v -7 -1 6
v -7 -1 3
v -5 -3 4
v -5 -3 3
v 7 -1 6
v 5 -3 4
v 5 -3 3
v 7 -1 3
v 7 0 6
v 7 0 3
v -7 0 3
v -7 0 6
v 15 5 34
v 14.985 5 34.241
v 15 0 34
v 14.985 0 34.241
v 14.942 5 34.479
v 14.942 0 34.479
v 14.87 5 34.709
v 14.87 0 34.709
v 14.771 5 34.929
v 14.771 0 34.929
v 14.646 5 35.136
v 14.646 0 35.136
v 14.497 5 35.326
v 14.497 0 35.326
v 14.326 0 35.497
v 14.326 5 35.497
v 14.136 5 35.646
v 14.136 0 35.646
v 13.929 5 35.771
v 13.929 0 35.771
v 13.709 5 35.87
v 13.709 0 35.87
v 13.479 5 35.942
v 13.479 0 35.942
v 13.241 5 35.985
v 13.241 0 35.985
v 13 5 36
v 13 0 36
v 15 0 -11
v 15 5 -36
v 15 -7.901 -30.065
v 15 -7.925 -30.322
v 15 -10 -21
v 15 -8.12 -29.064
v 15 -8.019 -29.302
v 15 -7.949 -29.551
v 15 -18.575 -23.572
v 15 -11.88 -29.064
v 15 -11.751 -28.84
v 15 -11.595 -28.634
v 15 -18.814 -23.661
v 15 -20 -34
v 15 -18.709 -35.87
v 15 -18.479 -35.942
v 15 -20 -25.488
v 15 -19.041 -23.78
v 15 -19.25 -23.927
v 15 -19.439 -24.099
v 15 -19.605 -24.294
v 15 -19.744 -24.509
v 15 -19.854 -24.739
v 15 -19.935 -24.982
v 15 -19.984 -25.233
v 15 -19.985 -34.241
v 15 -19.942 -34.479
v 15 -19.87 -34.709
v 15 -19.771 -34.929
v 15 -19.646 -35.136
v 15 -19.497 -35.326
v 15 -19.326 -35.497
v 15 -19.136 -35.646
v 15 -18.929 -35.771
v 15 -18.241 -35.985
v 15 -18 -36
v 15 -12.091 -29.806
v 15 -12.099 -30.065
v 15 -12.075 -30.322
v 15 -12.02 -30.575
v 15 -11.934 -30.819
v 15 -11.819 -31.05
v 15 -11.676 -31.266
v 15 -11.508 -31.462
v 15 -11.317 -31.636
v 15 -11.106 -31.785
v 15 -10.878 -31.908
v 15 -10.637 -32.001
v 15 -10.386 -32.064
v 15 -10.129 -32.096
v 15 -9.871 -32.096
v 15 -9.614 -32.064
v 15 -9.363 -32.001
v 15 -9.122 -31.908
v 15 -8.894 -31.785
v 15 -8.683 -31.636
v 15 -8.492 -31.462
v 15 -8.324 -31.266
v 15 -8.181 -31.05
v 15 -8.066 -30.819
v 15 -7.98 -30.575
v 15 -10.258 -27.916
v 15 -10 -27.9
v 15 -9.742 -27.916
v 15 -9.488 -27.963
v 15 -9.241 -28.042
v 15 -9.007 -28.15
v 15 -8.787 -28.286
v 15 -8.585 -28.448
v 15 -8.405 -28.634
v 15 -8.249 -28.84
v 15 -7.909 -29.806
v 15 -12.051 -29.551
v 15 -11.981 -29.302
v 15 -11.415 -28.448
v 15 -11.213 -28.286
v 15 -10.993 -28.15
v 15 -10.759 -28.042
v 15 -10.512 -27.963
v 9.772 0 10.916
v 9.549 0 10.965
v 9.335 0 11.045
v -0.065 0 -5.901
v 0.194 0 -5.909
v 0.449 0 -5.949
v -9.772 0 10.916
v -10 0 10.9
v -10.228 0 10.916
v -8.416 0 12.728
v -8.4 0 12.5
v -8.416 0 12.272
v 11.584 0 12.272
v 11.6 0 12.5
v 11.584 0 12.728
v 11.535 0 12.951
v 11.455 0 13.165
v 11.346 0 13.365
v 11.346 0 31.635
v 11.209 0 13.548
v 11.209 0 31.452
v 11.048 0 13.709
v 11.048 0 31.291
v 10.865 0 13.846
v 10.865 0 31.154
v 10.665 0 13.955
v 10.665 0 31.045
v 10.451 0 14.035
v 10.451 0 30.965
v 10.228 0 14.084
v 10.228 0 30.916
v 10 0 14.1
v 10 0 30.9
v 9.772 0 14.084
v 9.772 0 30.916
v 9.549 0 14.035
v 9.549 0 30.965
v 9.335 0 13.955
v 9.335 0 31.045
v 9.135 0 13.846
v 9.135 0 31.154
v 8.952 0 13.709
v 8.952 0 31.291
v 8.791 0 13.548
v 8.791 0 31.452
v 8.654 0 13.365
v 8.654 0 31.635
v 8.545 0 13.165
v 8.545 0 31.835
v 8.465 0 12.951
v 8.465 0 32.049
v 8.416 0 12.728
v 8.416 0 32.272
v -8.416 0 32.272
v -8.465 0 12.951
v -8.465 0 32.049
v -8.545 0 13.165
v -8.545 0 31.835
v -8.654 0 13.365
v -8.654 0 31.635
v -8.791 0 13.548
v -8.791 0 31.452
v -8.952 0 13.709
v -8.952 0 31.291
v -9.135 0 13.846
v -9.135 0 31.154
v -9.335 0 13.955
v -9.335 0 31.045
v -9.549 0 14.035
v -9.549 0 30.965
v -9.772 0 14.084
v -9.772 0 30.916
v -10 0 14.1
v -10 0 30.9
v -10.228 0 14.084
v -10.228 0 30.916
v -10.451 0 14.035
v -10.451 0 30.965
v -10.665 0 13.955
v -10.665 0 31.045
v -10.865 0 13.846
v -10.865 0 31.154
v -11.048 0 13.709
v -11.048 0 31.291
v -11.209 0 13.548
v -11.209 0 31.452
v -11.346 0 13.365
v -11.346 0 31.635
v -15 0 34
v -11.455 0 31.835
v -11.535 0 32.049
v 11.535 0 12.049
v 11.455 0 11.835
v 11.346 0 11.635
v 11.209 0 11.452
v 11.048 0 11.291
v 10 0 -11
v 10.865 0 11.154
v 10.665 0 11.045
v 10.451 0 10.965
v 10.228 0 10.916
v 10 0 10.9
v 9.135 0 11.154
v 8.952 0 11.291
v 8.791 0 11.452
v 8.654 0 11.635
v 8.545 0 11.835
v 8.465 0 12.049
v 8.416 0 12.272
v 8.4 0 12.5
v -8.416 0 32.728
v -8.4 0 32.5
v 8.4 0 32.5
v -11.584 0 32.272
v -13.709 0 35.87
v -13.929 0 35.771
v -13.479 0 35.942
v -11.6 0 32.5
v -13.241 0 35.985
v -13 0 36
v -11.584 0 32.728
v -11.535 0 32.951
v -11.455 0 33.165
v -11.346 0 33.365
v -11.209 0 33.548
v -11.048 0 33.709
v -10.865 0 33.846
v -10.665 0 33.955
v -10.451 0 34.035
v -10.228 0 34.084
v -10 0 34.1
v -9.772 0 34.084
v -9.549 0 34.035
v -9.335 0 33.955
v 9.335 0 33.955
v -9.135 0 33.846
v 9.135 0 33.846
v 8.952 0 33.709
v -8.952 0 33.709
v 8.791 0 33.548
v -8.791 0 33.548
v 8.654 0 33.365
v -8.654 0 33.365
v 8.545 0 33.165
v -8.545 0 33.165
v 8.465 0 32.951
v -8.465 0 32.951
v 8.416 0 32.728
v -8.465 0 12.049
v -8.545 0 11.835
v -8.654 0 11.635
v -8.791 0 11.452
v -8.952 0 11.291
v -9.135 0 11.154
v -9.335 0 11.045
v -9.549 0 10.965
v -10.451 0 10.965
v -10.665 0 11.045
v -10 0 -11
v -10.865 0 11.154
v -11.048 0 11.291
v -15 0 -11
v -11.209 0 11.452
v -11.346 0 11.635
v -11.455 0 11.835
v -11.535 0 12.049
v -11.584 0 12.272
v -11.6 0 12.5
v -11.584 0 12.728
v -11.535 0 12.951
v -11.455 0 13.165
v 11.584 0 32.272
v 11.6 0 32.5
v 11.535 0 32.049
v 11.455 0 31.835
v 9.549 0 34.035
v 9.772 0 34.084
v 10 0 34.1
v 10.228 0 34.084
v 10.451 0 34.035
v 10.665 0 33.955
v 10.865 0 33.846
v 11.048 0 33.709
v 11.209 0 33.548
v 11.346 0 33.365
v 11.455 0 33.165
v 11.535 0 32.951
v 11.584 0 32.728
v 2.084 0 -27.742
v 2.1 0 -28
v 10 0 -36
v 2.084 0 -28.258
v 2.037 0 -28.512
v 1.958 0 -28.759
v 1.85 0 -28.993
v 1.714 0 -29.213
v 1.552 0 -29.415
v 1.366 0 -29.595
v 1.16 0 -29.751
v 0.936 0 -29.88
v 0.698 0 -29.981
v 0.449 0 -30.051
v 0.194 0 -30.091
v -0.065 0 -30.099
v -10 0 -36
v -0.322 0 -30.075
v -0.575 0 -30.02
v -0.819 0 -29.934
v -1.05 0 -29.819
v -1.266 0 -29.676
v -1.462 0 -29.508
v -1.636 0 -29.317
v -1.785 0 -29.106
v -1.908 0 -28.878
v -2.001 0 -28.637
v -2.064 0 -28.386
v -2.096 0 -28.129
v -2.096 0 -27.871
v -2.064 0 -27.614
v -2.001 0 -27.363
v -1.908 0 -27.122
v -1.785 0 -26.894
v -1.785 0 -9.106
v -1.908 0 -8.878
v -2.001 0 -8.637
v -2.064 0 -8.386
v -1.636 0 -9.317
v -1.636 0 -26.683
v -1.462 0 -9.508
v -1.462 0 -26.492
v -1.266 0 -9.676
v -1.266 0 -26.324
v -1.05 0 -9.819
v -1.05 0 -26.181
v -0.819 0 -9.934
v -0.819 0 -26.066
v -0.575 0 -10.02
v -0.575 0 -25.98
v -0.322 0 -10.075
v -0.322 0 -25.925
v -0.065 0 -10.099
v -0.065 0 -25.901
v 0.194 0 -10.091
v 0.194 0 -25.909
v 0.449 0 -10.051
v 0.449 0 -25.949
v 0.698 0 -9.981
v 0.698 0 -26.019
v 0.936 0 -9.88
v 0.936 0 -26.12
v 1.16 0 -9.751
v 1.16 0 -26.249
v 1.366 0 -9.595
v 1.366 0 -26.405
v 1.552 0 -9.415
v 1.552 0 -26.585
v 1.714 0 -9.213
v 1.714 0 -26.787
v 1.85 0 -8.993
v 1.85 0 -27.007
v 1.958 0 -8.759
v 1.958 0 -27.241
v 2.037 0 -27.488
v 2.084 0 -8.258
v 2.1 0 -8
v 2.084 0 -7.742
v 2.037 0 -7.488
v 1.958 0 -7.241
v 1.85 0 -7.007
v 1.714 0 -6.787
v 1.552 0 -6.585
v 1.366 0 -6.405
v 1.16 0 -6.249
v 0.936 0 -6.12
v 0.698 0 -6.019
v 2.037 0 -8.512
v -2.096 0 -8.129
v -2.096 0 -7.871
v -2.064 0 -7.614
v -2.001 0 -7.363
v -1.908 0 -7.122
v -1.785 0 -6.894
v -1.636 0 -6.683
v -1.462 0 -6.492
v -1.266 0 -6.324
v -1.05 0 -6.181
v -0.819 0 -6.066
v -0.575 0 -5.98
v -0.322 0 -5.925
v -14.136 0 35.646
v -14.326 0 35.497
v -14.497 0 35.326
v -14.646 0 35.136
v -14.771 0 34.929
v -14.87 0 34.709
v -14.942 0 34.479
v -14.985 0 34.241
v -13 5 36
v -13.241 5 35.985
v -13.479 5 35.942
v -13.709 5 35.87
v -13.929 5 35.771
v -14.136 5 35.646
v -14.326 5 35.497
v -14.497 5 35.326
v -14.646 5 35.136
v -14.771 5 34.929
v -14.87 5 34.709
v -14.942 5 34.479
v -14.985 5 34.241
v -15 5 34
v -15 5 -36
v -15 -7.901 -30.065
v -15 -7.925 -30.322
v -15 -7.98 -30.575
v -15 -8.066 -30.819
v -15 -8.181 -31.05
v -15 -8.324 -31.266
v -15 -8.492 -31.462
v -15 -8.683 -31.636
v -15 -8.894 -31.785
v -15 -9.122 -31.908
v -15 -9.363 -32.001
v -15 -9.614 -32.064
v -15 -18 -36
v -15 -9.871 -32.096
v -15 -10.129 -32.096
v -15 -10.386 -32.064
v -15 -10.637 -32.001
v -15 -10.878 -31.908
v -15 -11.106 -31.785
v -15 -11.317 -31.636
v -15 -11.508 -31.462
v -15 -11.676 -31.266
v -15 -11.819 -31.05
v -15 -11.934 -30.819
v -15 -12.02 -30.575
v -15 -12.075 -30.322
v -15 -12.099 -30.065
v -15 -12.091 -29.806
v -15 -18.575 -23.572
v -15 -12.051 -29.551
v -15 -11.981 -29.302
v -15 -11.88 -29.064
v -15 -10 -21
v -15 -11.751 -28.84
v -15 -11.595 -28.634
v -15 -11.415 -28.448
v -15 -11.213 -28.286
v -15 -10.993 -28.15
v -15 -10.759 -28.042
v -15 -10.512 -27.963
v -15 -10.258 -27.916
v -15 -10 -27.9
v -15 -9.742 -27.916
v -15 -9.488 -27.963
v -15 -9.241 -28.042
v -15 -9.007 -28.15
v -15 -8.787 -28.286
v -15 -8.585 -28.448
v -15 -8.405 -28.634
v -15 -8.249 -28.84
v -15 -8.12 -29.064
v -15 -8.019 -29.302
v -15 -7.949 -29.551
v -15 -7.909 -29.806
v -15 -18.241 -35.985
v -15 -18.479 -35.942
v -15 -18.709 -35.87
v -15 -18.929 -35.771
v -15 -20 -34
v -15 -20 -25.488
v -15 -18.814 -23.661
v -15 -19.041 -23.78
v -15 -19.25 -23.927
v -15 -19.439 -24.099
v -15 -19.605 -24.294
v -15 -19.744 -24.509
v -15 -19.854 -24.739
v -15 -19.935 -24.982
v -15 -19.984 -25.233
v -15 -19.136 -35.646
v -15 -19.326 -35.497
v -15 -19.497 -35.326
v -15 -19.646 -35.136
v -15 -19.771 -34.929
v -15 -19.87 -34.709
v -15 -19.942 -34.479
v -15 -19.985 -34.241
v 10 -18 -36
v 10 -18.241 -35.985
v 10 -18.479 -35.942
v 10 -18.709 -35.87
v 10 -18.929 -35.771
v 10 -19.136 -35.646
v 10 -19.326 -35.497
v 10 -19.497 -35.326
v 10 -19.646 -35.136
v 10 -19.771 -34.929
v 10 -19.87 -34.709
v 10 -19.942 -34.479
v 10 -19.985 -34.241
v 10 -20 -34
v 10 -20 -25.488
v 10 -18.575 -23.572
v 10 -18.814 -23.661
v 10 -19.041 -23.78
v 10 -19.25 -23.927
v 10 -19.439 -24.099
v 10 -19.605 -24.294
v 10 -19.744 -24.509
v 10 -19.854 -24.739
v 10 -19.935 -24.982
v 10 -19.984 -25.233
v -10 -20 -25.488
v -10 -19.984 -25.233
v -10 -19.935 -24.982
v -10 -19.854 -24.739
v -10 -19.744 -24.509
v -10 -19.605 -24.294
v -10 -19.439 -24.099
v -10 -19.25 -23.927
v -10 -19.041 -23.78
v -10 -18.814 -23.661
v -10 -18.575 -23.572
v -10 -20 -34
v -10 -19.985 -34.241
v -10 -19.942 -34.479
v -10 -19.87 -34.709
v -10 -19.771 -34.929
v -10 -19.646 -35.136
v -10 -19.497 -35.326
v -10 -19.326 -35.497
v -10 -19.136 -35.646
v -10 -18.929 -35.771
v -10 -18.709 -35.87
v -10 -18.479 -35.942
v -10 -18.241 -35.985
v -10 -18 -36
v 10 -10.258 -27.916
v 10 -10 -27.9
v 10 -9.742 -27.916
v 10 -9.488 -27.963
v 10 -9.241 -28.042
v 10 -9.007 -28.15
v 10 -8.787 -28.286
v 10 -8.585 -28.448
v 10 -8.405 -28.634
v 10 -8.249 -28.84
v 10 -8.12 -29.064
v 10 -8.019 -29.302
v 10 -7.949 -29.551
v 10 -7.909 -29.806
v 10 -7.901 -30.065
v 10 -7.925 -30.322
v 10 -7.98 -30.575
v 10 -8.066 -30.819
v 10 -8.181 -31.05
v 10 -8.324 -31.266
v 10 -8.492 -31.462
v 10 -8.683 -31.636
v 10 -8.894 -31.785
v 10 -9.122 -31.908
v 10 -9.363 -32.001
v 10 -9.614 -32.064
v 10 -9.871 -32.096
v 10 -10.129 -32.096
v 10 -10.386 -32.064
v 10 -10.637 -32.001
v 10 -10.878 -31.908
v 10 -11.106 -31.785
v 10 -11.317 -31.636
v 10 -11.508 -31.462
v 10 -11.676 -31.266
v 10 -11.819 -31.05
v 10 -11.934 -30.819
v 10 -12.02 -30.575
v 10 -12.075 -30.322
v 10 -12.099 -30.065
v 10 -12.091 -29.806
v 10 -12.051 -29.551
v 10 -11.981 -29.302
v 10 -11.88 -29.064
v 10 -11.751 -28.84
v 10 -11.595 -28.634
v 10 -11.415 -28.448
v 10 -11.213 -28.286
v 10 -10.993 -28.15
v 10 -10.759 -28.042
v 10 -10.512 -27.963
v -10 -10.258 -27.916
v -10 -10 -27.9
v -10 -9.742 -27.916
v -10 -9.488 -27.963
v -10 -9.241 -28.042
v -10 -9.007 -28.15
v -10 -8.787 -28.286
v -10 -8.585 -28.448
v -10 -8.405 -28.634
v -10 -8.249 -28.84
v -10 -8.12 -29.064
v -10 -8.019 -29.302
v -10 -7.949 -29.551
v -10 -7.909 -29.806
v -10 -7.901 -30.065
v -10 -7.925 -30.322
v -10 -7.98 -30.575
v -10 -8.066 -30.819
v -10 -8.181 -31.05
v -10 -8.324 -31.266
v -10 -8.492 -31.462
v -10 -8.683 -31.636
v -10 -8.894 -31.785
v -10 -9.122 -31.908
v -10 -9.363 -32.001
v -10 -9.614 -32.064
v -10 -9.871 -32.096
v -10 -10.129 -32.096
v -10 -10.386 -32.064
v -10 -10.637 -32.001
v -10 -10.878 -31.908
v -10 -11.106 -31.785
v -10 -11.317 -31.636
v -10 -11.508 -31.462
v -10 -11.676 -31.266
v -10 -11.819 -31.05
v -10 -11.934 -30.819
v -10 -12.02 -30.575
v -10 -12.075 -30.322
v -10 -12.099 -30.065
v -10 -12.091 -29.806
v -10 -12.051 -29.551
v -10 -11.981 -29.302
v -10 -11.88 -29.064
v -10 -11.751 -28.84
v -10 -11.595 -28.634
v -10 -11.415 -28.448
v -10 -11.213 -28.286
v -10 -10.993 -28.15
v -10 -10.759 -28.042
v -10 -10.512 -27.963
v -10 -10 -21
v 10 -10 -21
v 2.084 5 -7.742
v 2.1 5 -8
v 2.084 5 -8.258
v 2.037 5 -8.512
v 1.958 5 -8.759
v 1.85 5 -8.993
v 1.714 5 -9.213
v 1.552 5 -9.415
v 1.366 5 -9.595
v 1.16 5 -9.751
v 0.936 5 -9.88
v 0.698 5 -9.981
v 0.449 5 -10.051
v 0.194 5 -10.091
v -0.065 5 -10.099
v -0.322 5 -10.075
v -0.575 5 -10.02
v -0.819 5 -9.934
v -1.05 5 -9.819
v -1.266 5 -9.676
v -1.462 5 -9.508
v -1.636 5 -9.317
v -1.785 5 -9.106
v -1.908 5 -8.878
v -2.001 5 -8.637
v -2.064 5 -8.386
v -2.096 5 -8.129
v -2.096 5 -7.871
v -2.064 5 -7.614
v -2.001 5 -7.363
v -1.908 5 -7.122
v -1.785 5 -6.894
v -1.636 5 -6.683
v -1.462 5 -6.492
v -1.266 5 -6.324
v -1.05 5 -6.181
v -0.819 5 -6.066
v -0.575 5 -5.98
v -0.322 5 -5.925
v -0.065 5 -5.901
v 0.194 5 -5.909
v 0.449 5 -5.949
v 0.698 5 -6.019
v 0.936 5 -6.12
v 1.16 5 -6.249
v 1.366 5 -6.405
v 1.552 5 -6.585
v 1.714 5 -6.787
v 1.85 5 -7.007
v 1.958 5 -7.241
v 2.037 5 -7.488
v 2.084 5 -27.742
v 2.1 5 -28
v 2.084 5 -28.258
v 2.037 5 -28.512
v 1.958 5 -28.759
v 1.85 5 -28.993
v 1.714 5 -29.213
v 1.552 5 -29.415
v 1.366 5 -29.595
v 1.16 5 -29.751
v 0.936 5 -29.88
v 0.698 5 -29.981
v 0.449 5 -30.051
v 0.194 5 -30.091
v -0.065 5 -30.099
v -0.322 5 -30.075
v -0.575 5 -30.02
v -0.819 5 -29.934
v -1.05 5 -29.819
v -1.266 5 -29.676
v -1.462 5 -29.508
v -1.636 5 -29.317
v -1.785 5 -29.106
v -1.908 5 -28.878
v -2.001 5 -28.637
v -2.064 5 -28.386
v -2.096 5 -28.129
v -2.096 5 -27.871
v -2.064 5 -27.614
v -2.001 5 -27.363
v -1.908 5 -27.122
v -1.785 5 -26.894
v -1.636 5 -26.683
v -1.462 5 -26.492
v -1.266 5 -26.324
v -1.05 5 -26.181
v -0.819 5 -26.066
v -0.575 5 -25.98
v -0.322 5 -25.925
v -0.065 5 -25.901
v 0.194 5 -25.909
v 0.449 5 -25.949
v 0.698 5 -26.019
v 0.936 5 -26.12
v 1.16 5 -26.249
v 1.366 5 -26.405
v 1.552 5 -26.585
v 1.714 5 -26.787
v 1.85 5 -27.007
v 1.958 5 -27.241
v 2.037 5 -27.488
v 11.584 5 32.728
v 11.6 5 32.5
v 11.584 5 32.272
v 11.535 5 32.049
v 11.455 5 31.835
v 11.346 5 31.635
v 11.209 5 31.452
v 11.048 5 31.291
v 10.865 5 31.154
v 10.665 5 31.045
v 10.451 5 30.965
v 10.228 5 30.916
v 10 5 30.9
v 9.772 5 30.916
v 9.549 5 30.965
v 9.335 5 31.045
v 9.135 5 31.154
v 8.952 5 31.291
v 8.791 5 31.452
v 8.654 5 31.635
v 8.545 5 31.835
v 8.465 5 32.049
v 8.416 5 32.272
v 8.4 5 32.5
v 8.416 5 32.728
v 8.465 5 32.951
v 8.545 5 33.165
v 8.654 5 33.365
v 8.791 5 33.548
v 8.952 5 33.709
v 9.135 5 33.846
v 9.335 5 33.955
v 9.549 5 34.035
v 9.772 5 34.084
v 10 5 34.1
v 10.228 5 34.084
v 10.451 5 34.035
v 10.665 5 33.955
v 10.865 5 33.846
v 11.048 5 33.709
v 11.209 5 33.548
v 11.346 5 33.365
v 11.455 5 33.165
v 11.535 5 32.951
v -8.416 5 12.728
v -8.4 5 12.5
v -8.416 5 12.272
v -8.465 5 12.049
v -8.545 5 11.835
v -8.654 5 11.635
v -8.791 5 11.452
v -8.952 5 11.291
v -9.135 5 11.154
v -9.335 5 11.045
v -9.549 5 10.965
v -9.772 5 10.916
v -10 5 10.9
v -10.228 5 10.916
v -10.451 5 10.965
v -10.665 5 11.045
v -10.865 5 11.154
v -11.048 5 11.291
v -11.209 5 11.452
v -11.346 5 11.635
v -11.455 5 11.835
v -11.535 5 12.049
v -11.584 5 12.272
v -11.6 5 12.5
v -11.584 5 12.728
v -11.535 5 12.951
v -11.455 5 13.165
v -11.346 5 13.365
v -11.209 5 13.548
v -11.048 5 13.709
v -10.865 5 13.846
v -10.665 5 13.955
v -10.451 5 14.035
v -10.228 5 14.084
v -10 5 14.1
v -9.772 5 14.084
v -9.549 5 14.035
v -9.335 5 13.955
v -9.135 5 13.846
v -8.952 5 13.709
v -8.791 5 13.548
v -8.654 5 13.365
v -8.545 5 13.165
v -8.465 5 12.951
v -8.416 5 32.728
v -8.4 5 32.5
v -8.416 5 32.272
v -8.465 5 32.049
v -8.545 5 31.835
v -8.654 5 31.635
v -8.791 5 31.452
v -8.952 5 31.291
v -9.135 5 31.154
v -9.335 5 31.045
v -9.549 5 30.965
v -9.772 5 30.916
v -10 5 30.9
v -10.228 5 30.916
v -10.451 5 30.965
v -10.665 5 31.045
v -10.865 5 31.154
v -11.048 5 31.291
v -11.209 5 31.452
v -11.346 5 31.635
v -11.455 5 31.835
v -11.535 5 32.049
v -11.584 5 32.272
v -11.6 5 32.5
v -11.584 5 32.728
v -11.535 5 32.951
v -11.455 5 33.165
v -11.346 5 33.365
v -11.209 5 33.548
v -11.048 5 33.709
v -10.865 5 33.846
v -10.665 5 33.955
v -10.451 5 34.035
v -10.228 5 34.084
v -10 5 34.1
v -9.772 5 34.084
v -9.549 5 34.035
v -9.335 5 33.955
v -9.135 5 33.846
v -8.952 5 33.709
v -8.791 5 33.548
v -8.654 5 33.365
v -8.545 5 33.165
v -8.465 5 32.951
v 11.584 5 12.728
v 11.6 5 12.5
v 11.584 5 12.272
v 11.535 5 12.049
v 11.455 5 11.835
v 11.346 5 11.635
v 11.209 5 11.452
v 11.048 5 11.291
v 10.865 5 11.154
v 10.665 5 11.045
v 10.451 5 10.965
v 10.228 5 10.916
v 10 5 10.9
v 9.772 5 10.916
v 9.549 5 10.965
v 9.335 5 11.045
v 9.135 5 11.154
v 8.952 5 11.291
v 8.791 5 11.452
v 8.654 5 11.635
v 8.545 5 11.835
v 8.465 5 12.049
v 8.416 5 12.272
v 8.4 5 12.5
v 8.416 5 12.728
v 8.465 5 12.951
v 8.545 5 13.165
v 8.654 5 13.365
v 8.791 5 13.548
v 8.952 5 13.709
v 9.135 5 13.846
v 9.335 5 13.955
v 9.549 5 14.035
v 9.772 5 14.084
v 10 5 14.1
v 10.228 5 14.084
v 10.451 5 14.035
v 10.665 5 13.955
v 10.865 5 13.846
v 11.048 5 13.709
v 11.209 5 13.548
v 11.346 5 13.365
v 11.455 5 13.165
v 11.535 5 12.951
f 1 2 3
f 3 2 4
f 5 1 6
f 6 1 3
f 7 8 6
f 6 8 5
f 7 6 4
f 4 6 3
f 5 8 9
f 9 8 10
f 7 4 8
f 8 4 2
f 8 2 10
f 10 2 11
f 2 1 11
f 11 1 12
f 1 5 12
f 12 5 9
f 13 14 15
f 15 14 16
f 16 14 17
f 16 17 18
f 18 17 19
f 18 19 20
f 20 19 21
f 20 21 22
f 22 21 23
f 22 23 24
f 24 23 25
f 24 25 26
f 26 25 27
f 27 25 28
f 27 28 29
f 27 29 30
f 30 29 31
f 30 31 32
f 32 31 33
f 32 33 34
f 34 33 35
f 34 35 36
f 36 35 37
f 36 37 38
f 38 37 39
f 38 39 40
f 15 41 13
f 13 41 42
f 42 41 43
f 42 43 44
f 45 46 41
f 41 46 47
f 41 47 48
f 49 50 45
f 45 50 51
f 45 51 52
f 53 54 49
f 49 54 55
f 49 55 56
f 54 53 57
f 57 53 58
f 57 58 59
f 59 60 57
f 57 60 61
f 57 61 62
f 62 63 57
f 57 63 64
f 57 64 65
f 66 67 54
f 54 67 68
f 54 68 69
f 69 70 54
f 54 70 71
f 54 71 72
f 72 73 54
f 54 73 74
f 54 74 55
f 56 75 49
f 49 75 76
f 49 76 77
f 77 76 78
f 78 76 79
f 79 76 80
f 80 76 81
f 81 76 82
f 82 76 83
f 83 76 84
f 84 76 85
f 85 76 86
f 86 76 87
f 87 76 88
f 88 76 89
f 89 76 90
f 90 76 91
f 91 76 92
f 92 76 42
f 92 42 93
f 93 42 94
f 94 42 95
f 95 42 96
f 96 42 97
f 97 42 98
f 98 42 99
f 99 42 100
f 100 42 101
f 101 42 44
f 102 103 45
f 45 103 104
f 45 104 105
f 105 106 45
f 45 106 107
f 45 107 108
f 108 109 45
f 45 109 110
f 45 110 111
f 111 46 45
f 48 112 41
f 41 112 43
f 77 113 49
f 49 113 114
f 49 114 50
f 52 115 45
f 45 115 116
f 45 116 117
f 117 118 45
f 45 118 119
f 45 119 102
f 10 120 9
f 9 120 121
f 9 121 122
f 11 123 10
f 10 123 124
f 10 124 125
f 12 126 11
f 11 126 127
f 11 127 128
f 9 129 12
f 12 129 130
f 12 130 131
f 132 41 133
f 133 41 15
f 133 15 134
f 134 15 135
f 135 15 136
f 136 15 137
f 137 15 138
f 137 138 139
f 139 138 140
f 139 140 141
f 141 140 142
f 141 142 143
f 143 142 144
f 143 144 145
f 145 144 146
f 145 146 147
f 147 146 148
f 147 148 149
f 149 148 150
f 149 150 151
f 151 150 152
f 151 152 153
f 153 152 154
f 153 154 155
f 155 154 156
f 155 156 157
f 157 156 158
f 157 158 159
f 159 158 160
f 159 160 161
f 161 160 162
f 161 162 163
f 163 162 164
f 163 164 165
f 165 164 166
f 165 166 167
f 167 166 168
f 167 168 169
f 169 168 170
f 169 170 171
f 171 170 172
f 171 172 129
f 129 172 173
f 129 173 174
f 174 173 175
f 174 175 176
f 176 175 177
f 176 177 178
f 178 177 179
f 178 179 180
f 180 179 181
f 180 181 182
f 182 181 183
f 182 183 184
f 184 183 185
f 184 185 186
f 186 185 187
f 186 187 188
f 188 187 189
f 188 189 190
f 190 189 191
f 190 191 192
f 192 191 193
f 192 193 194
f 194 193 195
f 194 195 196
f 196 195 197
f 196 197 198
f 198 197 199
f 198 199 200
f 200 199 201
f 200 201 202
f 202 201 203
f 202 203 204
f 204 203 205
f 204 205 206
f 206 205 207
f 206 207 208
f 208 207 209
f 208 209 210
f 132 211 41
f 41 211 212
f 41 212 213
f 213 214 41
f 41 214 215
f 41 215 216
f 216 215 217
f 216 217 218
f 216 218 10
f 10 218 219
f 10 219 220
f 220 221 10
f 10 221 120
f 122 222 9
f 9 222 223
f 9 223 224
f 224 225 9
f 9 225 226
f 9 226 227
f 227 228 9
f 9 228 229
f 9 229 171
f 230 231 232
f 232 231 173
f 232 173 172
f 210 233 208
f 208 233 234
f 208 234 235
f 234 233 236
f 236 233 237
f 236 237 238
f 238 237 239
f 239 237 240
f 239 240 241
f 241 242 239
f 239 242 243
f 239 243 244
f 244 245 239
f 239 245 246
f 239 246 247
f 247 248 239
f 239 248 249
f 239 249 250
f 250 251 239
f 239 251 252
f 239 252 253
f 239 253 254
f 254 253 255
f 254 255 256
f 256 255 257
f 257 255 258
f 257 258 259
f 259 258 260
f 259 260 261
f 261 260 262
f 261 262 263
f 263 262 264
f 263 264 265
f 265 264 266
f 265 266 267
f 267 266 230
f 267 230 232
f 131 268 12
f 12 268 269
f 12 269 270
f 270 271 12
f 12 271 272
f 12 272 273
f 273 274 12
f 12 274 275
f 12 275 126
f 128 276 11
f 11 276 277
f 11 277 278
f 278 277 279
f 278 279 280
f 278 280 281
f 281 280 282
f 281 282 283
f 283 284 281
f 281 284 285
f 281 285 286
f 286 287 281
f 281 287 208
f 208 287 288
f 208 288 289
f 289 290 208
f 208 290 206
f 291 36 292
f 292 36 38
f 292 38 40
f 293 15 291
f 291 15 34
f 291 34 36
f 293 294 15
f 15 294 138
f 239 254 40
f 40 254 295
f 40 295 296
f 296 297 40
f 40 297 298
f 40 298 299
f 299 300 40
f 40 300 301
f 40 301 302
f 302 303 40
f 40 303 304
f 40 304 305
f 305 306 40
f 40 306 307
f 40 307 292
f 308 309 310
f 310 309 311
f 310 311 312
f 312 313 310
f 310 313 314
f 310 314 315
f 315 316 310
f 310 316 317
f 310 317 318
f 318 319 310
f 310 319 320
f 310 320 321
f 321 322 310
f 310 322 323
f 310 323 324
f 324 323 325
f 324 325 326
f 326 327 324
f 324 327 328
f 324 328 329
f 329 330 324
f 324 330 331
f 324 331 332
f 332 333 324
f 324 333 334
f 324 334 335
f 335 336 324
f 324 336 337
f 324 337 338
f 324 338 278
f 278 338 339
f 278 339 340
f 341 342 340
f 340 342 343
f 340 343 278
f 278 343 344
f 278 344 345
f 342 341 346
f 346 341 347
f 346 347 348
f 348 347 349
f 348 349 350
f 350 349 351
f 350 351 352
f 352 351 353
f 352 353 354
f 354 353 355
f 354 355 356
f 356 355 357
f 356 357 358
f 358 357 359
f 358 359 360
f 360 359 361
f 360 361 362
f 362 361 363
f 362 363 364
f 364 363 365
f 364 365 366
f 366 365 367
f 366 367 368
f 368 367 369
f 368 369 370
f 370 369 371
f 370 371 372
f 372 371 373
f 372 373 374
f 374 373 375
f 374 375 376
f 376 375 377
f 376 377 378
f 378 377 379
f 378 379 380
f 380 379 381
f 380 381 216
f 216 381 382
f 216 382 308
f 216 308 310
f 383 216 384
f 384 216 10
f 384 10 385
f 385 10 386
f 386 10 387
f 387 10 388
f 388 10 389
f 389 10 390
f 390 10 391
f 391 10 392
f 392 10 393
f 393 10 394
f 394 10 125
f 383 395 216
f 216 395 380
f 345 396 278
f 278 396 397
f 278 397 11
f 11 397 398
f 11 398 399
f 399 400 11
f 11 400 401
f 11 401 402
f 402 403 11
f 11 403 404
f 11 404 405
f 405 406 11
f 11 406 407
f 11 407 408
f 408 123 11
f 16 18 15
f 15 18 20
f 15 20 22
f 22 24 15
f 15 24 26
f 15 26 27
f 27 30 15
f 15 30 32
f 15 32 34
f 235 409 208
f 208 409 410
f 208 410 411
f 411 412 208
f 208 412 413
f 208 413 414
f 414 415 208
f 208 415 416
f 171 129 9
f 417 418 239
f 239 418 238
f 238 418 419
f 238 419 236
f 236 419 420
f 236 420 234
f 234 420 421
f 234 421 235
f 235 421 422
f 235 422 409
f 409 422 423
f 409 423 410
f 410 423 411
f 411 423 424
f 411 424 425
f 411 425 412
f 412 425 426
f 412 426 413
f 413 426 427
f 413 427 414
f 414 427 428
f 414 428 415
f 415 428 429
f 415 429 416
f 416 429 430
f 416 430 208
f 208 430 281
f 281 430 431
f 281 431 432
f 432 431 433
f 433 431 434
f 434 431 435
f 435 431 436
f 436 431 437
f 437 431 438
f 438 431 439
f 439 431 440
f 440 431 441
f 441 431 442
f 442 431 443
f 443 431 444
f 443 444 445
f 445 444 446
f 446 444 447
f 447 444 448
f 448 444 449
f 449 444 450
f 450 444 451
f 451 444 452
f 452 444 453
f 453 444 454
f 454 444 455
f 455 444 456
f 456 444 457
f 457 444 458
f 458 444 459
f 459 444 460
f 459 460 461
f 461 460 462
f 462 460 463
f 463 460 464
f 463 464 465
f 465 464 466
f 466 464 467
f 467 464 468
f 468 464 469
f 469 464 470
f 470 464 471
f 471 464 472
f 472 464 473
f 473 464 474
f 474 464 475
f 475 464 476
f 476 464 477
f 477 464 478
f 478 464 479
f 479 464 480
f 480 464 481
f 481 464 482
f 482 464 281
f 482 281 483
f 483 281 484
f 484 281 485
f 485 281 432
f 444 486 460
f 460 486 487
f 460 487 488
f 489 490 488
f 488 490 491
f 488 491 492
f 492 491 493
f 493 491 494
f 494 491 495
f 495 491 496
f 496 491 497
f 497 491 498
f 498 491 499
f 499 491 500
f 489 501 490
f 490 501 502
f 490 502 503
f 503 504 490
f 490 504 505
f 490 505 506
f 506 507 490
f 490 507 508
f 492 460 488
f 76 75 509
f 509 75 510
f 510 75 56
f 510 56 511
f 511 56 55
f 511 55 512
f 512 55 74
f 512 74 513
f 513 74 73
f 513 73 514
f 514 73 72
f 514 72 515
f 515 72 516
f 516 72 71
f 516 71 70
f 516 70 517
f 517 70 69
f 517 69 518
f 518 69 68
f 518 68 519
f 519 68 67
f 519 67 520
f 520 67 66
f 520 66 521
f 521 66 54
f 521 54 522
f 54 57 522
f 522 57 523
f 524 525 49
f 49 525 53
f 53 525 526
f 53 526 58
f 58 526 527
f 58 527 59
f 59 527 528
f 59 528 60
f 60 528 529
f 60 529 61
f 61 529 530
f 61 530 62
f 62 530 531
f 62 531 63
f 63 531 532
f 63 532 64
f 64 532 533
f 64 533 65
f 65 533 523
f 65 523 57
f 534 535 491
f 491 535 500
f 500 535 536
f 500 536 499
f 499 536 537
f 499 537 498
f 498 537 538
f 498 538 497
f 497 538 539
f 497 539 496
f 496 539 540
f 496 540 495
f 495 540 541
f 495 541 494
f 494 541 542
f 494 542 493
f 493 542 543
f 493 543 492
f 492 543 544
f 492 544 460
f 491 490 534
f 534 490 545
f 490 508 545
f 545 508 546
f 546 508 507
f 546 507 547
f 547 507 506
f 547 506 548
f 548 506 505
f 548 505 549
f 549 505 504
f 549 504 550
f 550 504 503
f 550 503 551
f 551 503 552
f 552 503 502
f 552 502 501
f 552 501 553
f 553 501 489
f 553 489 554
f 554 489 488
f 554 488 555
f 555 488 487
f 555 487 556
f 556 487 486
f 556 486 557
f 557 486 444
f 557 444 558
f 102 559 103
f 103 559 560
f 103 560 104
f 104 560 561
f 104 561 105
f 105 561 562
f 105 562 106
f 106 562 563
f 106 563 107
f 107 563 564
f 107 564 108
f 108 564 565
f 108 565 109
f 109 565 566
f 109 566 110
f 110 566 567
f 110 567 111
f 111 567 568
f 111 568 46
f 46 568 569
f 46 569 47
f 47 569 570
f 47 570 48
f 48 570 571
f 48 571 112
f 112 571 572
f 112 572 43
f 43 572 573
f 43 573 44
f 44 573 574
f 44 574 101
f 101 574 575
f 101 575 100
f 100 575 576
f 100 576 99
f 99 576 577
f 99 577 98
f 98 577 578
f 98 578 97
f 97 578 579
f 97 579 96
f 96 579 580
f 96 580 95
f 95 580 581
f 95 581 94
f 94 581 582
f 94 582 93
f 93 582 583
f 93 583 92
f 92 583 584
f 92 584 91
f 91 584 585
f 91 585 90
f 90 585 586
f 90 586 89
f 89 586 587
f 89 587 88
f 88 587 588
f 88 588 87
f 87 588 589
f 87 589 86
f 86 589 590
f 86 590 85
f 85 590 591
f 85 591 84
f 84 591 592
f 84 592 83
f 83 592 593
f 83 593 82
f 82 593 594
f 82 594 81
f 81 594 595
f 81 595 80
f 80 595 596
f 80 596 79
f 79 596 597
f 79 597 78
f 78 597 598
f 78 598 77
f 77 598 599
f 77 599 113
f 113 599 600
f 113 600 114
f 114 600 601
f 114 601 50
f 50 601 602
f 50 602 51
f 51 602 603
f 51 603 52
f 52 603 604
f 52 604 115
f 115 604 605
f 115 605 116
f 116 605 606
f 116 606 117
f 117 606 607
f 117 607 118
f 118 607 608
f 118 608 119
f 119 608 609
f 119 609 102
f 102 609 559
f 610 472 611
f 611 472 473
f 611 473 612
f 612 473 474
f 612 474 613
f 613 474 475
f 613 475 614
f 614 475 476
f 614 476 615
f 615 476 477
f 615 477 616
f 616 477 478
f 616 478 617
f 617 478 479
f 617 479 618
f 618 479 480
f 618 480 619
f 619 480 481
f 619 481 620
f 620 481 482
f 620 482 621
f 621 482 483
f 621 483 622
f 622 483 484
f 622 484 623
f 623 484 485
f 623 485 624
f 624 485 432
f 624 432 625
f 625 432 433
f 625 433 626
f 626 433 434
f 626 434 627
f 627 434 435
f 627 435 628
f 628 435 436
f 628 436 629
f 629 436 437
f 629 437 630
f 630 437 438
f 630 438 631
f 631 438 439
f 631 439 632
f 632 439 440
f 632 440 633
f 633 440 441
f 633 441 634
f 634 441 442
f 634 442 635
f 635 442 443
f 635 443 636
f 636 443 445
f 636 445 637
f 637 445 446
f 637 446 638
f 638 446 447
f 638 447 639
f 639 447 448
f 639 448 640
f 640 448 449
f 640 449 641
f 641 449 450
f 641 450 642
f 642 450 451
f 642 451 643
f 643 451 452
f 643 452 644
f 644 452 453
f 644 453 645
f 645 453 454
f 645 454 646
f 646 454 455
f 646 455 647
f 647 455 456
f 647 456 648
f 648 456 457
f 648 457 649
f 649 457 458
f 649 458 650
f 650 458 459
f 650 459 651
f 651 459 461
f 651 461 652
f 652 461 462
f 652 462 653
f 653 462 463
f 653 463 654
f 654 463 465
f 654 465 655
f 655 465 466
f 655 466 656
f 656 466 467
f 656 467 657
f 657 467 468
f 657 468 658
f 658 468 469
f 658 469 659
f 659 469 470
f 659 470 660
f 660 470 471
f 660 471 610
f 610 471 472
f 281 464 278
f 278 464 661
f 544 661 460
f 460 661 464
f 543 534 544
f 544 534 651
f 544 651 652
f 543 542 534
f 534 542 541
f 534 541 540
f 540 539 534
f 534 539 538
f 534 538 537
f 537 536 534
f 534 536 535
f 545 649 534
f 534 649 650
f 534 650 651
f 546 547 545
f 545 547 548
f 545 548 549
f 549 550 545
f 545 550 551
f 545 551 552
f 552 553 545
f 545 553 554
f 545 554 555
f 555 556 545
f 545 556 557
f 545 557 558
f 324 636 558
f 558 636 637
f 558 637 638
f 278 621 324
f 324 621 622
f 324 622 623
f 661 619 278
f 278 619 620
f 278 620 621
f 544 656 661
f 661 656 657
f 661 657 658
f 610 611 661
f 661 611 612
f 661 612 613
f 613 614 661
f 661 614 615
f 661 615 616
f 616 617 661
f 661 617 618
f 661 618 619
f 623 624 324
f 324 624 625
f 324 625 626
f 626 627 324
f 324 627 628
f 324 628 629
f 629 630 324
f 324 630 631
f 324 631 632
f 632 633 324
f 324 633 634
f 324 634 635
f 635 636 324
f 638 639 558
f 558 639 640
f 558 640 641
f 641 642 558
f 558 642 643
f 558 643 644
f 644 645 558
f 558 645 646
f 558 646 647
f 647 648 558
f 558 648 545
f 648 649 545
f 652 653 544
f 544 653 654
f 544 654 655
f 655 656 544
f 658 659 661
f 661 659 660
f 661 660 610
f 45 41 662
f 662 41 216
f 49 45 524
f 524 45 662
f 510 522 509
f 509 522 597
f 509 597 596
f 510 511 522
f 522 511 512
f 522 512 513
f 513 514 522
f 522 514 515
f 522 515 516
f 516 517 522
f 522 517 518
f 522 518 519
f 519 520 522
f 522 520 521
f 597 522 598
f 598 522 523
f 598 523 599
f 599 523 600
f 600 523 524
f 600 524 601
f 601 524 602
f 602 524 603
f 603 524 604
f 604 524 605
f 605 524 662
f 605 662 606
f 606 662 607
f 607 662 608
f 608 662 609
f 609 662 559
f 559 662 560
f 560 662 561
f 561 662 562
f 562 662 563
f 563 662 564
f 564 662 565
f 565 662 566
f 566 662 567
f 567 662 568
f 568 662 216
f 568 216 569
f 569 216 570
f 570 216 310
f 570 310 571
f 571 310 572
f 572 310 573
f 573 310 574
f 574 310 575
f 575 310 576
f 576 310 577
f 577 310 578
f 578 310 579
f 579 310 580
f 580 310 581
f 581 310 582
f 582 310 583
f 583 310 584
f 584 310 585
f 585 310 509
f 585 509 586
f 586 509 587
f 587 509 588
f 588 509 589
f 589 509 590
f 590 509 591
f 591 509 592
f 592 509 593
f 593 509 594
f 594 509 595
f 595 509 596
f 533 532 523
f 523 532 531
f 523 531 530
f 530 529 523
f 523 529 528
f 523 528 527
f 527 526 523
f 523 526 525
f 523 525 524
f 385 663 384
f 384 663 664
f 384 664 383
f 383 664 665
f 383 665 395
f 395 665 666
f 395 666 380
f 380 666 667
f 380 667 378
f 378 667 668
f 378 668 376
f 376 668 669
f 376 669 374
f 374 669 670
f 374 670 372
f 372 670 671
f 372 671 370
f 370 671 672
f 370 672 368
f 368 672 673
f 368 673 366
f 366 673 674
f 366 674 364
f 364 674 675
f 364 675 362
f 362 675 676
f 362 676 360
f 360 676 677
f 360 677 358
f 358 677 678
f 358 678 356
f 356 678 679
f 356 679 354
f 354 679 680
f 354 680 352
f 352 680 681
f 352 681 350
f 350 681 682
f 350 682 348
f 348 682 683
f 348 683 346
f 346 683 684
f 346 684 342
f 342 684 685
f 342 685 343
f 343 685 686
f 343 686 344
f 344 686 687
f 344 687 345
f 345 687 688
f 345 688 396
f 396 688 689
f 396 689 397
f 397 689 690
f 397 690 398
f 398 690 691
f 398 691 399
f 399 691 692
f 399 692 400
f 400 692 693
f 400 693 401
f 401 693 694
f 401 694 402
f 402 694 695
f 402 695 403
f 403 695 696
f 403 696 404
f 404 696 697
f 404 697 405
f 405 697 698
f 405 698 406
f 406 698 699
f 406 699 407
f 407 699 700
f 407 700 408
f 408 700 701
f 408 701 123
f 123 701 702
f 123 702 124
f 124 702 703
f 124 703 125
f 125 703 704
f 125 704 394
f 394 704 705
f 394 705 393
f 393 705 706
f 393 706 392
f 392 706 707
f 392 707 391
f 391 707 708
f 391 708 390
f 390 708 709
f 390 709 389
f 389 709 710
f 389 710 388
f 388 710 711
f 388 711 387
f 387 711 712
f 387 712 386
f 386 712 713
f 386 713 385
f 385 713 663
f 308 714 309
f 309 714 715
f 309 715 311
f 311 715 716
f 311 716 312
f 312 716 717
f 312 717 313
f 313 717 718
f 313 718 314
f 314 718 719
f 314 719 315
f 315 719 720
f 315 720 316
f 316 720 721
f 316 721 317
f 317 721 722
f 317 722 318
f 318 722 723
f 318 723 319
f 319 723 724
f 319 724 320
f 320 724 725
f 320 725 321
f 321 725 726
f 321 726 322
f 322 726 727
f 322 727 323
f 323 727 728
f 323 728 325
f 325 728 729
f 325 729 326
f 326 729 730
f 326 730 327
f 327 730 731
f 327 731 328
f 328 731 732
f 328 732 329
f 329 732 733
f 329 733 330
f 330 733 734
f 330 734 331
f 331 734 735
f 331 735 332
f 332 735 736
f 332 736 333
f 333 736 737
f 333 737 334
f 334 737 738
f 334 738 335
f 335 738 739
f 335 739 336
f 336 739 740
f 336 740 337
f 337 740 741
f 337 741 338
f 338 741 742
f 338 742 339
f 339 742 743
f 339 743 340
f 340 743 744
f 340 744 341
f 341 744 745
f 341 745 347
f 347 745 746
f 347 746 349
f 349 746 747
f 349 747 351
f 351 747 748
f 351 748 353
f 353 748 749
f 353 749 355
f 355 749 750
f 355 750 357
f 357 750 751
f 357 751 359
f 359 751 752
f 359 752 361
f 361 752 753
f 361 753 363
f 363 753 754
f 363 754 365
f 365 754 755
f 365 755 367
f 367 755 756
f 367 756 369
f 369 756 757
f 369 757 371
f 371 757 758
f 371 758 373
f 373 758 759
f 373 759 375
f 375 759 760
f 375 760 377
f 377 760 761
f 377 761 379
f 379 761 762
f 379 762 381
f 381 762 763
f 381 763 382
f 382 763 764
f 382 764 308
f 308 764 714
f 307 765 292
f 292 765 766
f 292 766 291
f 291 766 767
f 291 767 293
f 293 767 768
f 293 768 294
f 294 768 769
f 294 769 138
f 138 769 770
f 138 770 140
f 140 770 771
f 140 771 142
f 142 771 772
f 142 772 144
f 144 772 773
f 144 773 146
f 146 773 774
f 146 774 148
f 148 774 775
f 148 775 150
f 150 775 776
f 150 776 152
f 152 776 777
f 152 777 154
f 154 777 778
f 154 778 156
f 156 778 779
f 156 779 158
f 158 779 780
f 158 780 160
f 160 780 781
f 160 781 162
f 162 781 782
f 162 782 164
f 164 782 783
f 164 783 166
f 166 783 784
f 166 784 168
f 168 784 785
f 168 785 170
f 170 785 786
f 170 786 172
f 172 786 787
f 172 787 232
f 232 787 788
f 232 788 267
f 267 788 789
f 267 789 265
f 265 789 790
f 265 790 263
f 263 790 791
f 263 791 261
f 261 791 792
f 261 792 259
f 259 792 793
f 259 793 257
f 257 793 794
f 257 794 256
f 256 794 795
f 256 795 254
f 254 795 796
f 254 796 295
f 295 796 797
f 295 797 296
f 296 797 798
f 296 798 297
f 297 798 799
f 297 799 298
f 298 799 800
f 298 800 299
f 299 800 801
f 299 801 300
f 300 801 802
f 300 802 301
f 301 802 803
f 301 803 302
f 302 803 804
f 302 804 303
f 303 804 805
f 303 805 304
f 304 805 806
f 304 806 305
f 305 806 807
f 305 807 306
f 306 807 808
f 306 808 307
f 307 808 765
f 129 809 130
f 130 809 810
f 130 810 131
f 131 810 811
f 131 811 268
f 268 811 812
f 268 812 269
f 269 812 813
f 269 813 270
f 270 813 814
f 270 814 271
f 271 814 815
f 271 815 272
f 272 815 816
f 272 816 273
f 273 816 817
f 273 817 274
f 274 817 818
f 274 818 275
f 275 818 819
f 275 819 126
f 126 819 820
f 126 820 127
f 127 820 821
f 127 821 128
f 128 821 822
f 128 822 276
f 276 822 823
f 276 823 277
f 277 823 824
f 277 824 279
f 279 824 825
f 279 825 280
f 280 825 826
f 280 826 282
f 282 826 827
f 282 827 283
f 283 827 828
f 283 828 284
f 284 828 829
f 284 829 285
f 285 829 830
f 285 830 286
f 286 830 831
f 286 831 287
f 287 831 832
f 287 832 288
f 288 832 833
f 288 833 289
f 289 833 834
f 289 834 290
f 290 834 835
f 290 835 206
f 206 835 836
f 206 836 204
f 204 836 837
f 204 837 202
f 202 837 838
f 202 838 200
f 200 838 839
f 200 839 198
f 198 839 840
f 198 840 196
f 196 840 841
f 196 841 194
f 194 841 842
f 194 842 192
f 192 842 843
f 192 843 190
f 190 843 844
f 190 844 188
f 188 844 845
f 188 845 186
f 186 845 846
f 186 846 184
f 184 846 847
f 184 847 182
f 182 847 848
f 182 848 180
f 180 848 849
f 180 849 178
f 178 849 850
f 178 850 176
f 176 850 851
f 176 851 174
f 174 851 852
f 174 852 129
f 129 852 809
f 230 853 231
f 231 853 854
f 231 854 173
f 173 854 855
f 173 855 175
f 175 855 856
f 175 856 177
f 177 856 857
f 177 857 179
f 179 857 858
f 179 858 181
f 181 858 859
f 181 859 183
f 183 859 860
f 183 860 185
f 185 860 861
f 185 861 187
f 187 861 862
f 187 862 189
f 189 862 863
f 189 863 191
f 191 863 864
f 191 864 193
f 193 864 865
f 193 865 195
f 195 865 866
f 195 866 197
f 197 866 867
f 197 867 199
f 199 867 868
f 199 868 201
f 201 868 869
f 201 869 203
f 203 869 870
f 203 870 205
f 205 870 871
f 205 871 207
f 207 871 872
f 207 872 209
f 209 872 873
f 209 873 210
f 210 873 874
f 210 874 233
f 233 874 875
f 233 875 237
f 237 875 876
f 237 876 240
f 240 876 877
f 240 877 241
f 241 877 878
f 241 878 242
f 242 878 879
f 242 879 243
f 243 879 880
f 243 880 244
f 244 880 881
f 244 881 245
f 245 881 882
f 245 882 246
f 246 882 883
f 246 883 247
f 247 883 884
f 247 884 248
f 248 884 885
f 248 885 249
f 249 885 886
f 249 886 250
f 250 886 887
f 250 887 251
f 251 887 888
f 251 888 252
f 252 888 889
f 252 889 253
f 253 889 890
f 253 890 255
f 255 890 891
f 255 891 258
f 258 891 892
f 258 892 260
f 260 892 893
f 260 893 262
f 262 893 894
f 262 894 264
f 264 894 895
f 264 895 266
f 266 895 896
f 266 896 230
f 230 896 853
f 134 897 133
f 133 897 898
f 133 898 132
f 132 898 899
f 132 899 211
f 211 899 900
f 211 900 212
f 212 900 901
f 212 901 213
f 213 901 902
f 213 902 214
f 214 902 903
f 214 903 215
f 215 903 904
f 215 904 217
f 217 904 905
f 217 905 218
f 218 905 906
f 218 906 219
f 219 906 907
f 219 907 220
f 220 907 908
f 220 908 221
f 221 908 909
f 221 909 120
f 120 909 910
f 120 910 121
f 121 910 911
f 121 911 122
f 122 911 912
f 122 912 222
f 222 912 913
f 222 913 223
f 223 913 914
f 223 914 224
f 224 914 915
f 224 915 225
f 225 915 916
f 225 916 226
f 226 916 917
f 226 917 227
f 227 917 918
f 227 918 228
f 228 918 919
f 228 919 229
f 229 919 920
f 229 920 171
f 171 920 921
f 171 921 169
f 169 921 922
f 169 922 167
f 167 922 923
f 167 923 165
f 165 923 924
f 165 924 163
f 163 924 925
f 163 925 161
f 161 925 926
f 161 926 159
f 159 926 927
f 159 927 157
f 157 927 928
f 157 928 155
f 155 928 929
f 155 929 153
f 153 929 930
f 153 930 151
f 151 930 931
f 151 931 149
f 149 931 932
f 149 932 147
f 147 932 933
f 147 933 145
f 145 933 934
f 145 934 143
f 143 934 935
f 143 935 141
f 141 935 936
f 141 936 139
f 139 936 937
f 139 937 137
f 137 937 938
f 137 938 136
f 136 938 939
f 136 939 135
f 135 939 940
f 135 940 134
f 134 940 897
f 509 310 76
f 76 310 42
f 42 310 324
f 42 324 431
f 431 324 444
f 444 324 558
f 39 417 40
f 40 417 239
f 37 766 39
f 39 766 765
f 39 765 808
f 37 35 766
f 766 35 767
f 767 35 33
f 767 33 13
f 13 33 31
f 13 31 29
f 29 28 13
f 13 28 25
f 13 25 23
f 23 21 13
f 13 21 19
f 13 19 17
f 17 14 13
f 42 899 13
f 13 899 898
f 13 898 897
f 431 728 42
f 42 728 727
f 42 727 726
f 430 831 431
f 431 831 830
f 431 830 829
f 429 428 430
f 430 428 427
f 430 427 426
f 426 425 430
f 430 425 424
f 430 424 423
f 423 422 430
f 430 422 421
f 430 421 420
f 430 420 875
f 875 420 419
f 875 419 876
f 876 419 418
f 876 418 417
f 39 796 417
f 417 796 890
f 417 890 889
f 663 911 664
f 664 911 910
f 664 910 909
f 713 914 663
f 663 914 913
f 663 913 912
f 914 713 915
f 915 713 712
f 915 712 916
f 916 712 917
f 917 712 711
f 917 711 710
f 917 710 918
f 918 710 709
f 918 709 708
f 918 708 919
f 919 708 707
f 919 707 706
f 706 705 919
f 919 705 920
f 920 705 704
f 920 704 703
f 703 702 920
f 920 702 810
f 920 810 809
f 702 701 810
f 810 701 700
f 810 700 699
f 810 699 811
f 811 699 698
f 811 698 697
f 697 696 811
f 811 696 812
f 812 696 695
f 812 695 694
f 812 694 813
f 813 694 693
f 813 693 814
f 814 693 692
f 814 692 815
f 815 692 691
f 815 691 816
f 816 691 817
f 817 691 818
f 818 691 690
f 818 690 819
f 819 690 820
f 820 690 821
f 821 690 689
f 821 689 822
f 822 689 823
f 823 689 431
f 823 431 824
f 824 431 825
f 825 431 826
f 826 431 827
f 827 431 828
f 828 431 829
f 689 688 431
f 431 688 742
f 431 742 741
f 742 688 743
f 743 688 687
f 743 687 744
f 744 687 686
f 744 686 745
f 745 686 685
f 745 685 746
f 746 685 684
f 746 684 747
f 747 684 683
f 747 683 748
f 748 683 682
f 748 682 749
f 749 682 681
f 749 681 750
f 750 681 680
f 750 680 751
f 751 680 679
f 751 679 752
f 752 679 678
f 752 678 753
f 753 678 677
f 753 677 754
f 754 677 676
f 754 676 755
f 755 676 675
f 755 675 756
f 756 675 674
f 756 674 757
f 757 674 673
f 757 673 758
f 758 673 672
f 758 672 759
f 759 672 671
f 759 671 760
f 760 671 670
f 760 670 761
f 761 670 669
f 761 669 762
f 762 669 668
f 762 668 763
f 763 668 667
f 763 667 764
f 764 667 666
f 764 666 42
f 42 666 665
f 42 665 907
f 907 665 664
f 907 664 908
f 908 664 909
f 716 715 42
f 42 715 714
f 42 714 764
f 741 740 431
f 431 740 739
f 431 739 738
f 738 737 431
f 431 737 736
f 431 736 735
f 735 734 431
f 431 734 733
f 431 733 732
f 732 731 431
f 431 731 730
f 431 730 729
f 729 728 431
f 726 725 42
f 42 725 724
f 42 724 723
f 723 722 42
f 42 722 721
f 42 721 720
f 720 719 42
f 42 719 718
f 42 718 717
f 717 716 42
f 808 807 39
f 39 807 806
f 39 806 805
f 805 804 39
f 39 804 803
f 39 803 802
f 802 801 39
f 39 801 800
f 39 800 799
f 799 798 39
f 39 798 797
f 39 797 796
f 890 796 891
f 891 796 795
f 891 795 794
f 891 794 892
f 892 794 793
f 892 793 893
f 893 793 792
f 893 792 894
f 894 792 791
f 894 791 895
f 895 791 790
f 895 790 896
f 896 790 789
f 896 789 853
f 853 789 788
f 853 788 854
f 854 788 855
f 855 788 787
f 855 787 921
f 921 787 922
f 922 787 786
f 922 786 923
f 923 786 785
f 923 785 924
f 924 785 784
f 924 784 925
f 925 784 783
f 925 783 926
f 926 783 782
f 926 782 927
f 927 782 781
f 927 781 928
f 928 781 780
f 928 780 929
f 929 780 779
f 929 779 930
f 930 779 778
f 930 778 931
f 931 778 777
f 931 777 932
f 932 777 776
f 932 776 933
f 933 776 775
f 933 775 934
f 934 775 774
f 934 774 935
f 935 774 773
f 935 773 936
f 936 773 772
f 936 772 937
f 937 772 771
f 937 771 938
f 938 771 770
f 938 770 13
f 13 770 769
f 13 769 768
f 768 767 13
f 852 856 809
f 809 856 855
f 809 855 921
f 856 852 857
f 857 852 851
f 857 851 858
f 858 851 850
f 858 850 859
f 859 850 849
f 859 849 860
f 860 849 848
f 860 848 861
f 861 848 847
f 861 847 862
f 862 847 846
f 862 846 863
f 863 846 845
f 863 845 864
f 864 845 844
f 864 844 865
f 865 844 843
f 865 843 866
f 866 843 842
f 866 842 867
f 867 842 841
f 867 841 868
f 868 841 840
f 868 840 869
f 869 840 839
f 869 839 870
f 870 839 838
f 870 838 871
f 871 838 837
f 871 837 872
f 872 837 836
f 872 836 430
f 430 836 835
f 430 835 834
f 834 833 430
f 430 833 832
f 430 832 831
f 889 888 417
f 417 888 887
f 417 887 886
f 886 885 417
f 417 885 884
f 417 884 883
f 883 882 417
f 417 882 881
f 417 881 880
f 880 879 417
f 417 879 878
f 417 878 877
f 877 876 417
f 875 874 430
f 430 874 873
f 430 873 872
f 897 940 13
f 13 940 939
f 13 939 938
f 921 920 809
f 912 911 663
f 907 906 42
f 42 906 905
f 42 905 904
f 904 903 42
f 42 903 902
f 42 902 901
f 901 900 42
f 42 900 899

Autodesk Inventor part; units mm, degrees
ref_plane "YZ Plane" through (0, 0, 0) normal (1, 0, 0) x (0, 1, 0)
ref_plane "XZ Plane" through (0, 0, 0) normal (0, 1, 0) x (-1, 0, 0)
ref_plane "XY Plane" through (0, 0, 0) normal (0, 0, 1) x (1, 0, 0)
sketch "Sketch1" plane through (0, 0, 0) normal (0, 1, 0) x (-1, 0, 0)
  line L0 (15, 36) -> (-15, 36)
  line L1 (-15, 36) -> (-15, -36)
  line L2 (-15, -36) -> (15, -36)
  line L3 (15, -36) -> (15, 36)
  point P0 (0, 0)
  point P1 (0, 36)
  point P2 (15, 0)
  dimension "d0" = 30
  dimension "d1" = 72
extrude "Extrusion1" add sketch "Sketch1" along normal blind 5
sketch "Sketch2" plane through (0, 5, 0) normal (0, 1, 0) x (1, 0, 0)
  circle A0 centre (-10, -12.5) radius 1.6
  circle A1 centre (-10, -32.5) radius 1.6
  circle A2 centre (10, -32.5) radius 1.6
  circle A3 centre (10, -12.5) radius 1.6
  line L0 (-10, -32.5) -> (10, -32.5) construction
  line L1 (-15, -36) -> (15, -36) projected
  point P0 (0, 0)
  point P1 (0, -32.5)
  point P2 (0, -36)
  dimension "d4" = 3.2
  dimension "d5" = 20
  dimension "d6" = 20
  dimension "d7" = 3.5
extrude "Extrusion2" cut sketch "Sketch2" against normal up to next
sketch "Sketch3" plane through (0, 5, 0) normal (0, 1, 0) x (1, 0, 0)
  line L0 (15, 36) -> (-15, 36) projected
  circle A0 centre (0, 8) radius 2.1
  circle A1 centre (0, 28) radius 2.1
  point P0 (0, 0)
  point P1 (0, 36)
  point P2 (0, 36)
  point P3 (0, 36)
  point P4 (0, 36)
  point P5 (0, 36)
  dimension "d12" = 4.2
  dimension "d14" = 20
  dimension "d52" = 8
extrude "Extrusion3" cut sketch "Sketch3" against normal up to next
sketch "Sketch4" plane through (15, 0, 36) normal (1, 0, 0) x (0, 0, -1)
  line L0 (0, 0) -> (72, 0) projected
  line L1 (72, 0) -> (72, -20)
  line L2 (57, -10) -> (47, 0)
  line L3 (57, -10) -> (60, -20)
  line L4 (60, -20) -> (72, -20)
  line L5 (47, 0) -> (72, 0)
  point P0 (36, 0)
  point P1 (47, 5)
  point P2 (47, 5)
  point P3 (47, 5)
  dimension "d33" = 25
  dimension "d34" = 45
  dimension "d35" = 20
  dimension "d38" = 12
extrude "Extrusion4" add sketch "Sketch4" against normal blind 5
mirror "Mirror2" about plane through (0, 0, 0) normal (1, 0, 0) of "Extrusion4"
sketch "Sketch8" plane through (-15, 0, 36) normal (-1, 0, 0) x (0, 0, 1)
  circle A0 centre (-66, -10) radius 2.1
  line L0 (-60, -20) -> (-72, -20) projected
  point P0 (-36, 0)
  point P1 (-72, 0)
  point P2 (-66, -20)
  dimension "d39" = 4.2
  dimension "d40" = 10
extrude "Extrusion8" cut sketch "Sketch8" against normal through all
fillet "Fillet2" radius 2 6 edges at (-12.5, -20, -36) (-12.5, -20, -24) (12.5, -20, -24) (12.5, -20, -36) (-15, 2.5, 36) (15, 2.5, 36)
sketch "Sketch9" plane through (0, 0, 0) normal (0, -1, 0) x (1, 0, 0)
  line L0 (-7, 6) -> (7, 6)
  line L1 (7, 6) -> (7, 3)
  line L2 (7, 3) -> (-7, 3)
  line L3 (-7, 3) -> (-7, 6)
  line L4 (-13, 36) -> (13, 36) projected
  point P0 (0, 0)
  point P1 (0, 3)
  dimension "d44" = 33
  dimension "d45" = 3
  dimension "d46" = 14
extrude "Extrusion9" add sketch "Sketch9" along normal blind 3
chamfer "Chamfer1" distance 2 angle 45 3 edges at (-7, -3, 4.5) (0, -3, 6) (7, -3, 4.5)
ref_plane "Work Plane1" through (0, 0, 0) normal (1, 0, 0) x (0, 1, 0)
properties part number "X-connector-left"
